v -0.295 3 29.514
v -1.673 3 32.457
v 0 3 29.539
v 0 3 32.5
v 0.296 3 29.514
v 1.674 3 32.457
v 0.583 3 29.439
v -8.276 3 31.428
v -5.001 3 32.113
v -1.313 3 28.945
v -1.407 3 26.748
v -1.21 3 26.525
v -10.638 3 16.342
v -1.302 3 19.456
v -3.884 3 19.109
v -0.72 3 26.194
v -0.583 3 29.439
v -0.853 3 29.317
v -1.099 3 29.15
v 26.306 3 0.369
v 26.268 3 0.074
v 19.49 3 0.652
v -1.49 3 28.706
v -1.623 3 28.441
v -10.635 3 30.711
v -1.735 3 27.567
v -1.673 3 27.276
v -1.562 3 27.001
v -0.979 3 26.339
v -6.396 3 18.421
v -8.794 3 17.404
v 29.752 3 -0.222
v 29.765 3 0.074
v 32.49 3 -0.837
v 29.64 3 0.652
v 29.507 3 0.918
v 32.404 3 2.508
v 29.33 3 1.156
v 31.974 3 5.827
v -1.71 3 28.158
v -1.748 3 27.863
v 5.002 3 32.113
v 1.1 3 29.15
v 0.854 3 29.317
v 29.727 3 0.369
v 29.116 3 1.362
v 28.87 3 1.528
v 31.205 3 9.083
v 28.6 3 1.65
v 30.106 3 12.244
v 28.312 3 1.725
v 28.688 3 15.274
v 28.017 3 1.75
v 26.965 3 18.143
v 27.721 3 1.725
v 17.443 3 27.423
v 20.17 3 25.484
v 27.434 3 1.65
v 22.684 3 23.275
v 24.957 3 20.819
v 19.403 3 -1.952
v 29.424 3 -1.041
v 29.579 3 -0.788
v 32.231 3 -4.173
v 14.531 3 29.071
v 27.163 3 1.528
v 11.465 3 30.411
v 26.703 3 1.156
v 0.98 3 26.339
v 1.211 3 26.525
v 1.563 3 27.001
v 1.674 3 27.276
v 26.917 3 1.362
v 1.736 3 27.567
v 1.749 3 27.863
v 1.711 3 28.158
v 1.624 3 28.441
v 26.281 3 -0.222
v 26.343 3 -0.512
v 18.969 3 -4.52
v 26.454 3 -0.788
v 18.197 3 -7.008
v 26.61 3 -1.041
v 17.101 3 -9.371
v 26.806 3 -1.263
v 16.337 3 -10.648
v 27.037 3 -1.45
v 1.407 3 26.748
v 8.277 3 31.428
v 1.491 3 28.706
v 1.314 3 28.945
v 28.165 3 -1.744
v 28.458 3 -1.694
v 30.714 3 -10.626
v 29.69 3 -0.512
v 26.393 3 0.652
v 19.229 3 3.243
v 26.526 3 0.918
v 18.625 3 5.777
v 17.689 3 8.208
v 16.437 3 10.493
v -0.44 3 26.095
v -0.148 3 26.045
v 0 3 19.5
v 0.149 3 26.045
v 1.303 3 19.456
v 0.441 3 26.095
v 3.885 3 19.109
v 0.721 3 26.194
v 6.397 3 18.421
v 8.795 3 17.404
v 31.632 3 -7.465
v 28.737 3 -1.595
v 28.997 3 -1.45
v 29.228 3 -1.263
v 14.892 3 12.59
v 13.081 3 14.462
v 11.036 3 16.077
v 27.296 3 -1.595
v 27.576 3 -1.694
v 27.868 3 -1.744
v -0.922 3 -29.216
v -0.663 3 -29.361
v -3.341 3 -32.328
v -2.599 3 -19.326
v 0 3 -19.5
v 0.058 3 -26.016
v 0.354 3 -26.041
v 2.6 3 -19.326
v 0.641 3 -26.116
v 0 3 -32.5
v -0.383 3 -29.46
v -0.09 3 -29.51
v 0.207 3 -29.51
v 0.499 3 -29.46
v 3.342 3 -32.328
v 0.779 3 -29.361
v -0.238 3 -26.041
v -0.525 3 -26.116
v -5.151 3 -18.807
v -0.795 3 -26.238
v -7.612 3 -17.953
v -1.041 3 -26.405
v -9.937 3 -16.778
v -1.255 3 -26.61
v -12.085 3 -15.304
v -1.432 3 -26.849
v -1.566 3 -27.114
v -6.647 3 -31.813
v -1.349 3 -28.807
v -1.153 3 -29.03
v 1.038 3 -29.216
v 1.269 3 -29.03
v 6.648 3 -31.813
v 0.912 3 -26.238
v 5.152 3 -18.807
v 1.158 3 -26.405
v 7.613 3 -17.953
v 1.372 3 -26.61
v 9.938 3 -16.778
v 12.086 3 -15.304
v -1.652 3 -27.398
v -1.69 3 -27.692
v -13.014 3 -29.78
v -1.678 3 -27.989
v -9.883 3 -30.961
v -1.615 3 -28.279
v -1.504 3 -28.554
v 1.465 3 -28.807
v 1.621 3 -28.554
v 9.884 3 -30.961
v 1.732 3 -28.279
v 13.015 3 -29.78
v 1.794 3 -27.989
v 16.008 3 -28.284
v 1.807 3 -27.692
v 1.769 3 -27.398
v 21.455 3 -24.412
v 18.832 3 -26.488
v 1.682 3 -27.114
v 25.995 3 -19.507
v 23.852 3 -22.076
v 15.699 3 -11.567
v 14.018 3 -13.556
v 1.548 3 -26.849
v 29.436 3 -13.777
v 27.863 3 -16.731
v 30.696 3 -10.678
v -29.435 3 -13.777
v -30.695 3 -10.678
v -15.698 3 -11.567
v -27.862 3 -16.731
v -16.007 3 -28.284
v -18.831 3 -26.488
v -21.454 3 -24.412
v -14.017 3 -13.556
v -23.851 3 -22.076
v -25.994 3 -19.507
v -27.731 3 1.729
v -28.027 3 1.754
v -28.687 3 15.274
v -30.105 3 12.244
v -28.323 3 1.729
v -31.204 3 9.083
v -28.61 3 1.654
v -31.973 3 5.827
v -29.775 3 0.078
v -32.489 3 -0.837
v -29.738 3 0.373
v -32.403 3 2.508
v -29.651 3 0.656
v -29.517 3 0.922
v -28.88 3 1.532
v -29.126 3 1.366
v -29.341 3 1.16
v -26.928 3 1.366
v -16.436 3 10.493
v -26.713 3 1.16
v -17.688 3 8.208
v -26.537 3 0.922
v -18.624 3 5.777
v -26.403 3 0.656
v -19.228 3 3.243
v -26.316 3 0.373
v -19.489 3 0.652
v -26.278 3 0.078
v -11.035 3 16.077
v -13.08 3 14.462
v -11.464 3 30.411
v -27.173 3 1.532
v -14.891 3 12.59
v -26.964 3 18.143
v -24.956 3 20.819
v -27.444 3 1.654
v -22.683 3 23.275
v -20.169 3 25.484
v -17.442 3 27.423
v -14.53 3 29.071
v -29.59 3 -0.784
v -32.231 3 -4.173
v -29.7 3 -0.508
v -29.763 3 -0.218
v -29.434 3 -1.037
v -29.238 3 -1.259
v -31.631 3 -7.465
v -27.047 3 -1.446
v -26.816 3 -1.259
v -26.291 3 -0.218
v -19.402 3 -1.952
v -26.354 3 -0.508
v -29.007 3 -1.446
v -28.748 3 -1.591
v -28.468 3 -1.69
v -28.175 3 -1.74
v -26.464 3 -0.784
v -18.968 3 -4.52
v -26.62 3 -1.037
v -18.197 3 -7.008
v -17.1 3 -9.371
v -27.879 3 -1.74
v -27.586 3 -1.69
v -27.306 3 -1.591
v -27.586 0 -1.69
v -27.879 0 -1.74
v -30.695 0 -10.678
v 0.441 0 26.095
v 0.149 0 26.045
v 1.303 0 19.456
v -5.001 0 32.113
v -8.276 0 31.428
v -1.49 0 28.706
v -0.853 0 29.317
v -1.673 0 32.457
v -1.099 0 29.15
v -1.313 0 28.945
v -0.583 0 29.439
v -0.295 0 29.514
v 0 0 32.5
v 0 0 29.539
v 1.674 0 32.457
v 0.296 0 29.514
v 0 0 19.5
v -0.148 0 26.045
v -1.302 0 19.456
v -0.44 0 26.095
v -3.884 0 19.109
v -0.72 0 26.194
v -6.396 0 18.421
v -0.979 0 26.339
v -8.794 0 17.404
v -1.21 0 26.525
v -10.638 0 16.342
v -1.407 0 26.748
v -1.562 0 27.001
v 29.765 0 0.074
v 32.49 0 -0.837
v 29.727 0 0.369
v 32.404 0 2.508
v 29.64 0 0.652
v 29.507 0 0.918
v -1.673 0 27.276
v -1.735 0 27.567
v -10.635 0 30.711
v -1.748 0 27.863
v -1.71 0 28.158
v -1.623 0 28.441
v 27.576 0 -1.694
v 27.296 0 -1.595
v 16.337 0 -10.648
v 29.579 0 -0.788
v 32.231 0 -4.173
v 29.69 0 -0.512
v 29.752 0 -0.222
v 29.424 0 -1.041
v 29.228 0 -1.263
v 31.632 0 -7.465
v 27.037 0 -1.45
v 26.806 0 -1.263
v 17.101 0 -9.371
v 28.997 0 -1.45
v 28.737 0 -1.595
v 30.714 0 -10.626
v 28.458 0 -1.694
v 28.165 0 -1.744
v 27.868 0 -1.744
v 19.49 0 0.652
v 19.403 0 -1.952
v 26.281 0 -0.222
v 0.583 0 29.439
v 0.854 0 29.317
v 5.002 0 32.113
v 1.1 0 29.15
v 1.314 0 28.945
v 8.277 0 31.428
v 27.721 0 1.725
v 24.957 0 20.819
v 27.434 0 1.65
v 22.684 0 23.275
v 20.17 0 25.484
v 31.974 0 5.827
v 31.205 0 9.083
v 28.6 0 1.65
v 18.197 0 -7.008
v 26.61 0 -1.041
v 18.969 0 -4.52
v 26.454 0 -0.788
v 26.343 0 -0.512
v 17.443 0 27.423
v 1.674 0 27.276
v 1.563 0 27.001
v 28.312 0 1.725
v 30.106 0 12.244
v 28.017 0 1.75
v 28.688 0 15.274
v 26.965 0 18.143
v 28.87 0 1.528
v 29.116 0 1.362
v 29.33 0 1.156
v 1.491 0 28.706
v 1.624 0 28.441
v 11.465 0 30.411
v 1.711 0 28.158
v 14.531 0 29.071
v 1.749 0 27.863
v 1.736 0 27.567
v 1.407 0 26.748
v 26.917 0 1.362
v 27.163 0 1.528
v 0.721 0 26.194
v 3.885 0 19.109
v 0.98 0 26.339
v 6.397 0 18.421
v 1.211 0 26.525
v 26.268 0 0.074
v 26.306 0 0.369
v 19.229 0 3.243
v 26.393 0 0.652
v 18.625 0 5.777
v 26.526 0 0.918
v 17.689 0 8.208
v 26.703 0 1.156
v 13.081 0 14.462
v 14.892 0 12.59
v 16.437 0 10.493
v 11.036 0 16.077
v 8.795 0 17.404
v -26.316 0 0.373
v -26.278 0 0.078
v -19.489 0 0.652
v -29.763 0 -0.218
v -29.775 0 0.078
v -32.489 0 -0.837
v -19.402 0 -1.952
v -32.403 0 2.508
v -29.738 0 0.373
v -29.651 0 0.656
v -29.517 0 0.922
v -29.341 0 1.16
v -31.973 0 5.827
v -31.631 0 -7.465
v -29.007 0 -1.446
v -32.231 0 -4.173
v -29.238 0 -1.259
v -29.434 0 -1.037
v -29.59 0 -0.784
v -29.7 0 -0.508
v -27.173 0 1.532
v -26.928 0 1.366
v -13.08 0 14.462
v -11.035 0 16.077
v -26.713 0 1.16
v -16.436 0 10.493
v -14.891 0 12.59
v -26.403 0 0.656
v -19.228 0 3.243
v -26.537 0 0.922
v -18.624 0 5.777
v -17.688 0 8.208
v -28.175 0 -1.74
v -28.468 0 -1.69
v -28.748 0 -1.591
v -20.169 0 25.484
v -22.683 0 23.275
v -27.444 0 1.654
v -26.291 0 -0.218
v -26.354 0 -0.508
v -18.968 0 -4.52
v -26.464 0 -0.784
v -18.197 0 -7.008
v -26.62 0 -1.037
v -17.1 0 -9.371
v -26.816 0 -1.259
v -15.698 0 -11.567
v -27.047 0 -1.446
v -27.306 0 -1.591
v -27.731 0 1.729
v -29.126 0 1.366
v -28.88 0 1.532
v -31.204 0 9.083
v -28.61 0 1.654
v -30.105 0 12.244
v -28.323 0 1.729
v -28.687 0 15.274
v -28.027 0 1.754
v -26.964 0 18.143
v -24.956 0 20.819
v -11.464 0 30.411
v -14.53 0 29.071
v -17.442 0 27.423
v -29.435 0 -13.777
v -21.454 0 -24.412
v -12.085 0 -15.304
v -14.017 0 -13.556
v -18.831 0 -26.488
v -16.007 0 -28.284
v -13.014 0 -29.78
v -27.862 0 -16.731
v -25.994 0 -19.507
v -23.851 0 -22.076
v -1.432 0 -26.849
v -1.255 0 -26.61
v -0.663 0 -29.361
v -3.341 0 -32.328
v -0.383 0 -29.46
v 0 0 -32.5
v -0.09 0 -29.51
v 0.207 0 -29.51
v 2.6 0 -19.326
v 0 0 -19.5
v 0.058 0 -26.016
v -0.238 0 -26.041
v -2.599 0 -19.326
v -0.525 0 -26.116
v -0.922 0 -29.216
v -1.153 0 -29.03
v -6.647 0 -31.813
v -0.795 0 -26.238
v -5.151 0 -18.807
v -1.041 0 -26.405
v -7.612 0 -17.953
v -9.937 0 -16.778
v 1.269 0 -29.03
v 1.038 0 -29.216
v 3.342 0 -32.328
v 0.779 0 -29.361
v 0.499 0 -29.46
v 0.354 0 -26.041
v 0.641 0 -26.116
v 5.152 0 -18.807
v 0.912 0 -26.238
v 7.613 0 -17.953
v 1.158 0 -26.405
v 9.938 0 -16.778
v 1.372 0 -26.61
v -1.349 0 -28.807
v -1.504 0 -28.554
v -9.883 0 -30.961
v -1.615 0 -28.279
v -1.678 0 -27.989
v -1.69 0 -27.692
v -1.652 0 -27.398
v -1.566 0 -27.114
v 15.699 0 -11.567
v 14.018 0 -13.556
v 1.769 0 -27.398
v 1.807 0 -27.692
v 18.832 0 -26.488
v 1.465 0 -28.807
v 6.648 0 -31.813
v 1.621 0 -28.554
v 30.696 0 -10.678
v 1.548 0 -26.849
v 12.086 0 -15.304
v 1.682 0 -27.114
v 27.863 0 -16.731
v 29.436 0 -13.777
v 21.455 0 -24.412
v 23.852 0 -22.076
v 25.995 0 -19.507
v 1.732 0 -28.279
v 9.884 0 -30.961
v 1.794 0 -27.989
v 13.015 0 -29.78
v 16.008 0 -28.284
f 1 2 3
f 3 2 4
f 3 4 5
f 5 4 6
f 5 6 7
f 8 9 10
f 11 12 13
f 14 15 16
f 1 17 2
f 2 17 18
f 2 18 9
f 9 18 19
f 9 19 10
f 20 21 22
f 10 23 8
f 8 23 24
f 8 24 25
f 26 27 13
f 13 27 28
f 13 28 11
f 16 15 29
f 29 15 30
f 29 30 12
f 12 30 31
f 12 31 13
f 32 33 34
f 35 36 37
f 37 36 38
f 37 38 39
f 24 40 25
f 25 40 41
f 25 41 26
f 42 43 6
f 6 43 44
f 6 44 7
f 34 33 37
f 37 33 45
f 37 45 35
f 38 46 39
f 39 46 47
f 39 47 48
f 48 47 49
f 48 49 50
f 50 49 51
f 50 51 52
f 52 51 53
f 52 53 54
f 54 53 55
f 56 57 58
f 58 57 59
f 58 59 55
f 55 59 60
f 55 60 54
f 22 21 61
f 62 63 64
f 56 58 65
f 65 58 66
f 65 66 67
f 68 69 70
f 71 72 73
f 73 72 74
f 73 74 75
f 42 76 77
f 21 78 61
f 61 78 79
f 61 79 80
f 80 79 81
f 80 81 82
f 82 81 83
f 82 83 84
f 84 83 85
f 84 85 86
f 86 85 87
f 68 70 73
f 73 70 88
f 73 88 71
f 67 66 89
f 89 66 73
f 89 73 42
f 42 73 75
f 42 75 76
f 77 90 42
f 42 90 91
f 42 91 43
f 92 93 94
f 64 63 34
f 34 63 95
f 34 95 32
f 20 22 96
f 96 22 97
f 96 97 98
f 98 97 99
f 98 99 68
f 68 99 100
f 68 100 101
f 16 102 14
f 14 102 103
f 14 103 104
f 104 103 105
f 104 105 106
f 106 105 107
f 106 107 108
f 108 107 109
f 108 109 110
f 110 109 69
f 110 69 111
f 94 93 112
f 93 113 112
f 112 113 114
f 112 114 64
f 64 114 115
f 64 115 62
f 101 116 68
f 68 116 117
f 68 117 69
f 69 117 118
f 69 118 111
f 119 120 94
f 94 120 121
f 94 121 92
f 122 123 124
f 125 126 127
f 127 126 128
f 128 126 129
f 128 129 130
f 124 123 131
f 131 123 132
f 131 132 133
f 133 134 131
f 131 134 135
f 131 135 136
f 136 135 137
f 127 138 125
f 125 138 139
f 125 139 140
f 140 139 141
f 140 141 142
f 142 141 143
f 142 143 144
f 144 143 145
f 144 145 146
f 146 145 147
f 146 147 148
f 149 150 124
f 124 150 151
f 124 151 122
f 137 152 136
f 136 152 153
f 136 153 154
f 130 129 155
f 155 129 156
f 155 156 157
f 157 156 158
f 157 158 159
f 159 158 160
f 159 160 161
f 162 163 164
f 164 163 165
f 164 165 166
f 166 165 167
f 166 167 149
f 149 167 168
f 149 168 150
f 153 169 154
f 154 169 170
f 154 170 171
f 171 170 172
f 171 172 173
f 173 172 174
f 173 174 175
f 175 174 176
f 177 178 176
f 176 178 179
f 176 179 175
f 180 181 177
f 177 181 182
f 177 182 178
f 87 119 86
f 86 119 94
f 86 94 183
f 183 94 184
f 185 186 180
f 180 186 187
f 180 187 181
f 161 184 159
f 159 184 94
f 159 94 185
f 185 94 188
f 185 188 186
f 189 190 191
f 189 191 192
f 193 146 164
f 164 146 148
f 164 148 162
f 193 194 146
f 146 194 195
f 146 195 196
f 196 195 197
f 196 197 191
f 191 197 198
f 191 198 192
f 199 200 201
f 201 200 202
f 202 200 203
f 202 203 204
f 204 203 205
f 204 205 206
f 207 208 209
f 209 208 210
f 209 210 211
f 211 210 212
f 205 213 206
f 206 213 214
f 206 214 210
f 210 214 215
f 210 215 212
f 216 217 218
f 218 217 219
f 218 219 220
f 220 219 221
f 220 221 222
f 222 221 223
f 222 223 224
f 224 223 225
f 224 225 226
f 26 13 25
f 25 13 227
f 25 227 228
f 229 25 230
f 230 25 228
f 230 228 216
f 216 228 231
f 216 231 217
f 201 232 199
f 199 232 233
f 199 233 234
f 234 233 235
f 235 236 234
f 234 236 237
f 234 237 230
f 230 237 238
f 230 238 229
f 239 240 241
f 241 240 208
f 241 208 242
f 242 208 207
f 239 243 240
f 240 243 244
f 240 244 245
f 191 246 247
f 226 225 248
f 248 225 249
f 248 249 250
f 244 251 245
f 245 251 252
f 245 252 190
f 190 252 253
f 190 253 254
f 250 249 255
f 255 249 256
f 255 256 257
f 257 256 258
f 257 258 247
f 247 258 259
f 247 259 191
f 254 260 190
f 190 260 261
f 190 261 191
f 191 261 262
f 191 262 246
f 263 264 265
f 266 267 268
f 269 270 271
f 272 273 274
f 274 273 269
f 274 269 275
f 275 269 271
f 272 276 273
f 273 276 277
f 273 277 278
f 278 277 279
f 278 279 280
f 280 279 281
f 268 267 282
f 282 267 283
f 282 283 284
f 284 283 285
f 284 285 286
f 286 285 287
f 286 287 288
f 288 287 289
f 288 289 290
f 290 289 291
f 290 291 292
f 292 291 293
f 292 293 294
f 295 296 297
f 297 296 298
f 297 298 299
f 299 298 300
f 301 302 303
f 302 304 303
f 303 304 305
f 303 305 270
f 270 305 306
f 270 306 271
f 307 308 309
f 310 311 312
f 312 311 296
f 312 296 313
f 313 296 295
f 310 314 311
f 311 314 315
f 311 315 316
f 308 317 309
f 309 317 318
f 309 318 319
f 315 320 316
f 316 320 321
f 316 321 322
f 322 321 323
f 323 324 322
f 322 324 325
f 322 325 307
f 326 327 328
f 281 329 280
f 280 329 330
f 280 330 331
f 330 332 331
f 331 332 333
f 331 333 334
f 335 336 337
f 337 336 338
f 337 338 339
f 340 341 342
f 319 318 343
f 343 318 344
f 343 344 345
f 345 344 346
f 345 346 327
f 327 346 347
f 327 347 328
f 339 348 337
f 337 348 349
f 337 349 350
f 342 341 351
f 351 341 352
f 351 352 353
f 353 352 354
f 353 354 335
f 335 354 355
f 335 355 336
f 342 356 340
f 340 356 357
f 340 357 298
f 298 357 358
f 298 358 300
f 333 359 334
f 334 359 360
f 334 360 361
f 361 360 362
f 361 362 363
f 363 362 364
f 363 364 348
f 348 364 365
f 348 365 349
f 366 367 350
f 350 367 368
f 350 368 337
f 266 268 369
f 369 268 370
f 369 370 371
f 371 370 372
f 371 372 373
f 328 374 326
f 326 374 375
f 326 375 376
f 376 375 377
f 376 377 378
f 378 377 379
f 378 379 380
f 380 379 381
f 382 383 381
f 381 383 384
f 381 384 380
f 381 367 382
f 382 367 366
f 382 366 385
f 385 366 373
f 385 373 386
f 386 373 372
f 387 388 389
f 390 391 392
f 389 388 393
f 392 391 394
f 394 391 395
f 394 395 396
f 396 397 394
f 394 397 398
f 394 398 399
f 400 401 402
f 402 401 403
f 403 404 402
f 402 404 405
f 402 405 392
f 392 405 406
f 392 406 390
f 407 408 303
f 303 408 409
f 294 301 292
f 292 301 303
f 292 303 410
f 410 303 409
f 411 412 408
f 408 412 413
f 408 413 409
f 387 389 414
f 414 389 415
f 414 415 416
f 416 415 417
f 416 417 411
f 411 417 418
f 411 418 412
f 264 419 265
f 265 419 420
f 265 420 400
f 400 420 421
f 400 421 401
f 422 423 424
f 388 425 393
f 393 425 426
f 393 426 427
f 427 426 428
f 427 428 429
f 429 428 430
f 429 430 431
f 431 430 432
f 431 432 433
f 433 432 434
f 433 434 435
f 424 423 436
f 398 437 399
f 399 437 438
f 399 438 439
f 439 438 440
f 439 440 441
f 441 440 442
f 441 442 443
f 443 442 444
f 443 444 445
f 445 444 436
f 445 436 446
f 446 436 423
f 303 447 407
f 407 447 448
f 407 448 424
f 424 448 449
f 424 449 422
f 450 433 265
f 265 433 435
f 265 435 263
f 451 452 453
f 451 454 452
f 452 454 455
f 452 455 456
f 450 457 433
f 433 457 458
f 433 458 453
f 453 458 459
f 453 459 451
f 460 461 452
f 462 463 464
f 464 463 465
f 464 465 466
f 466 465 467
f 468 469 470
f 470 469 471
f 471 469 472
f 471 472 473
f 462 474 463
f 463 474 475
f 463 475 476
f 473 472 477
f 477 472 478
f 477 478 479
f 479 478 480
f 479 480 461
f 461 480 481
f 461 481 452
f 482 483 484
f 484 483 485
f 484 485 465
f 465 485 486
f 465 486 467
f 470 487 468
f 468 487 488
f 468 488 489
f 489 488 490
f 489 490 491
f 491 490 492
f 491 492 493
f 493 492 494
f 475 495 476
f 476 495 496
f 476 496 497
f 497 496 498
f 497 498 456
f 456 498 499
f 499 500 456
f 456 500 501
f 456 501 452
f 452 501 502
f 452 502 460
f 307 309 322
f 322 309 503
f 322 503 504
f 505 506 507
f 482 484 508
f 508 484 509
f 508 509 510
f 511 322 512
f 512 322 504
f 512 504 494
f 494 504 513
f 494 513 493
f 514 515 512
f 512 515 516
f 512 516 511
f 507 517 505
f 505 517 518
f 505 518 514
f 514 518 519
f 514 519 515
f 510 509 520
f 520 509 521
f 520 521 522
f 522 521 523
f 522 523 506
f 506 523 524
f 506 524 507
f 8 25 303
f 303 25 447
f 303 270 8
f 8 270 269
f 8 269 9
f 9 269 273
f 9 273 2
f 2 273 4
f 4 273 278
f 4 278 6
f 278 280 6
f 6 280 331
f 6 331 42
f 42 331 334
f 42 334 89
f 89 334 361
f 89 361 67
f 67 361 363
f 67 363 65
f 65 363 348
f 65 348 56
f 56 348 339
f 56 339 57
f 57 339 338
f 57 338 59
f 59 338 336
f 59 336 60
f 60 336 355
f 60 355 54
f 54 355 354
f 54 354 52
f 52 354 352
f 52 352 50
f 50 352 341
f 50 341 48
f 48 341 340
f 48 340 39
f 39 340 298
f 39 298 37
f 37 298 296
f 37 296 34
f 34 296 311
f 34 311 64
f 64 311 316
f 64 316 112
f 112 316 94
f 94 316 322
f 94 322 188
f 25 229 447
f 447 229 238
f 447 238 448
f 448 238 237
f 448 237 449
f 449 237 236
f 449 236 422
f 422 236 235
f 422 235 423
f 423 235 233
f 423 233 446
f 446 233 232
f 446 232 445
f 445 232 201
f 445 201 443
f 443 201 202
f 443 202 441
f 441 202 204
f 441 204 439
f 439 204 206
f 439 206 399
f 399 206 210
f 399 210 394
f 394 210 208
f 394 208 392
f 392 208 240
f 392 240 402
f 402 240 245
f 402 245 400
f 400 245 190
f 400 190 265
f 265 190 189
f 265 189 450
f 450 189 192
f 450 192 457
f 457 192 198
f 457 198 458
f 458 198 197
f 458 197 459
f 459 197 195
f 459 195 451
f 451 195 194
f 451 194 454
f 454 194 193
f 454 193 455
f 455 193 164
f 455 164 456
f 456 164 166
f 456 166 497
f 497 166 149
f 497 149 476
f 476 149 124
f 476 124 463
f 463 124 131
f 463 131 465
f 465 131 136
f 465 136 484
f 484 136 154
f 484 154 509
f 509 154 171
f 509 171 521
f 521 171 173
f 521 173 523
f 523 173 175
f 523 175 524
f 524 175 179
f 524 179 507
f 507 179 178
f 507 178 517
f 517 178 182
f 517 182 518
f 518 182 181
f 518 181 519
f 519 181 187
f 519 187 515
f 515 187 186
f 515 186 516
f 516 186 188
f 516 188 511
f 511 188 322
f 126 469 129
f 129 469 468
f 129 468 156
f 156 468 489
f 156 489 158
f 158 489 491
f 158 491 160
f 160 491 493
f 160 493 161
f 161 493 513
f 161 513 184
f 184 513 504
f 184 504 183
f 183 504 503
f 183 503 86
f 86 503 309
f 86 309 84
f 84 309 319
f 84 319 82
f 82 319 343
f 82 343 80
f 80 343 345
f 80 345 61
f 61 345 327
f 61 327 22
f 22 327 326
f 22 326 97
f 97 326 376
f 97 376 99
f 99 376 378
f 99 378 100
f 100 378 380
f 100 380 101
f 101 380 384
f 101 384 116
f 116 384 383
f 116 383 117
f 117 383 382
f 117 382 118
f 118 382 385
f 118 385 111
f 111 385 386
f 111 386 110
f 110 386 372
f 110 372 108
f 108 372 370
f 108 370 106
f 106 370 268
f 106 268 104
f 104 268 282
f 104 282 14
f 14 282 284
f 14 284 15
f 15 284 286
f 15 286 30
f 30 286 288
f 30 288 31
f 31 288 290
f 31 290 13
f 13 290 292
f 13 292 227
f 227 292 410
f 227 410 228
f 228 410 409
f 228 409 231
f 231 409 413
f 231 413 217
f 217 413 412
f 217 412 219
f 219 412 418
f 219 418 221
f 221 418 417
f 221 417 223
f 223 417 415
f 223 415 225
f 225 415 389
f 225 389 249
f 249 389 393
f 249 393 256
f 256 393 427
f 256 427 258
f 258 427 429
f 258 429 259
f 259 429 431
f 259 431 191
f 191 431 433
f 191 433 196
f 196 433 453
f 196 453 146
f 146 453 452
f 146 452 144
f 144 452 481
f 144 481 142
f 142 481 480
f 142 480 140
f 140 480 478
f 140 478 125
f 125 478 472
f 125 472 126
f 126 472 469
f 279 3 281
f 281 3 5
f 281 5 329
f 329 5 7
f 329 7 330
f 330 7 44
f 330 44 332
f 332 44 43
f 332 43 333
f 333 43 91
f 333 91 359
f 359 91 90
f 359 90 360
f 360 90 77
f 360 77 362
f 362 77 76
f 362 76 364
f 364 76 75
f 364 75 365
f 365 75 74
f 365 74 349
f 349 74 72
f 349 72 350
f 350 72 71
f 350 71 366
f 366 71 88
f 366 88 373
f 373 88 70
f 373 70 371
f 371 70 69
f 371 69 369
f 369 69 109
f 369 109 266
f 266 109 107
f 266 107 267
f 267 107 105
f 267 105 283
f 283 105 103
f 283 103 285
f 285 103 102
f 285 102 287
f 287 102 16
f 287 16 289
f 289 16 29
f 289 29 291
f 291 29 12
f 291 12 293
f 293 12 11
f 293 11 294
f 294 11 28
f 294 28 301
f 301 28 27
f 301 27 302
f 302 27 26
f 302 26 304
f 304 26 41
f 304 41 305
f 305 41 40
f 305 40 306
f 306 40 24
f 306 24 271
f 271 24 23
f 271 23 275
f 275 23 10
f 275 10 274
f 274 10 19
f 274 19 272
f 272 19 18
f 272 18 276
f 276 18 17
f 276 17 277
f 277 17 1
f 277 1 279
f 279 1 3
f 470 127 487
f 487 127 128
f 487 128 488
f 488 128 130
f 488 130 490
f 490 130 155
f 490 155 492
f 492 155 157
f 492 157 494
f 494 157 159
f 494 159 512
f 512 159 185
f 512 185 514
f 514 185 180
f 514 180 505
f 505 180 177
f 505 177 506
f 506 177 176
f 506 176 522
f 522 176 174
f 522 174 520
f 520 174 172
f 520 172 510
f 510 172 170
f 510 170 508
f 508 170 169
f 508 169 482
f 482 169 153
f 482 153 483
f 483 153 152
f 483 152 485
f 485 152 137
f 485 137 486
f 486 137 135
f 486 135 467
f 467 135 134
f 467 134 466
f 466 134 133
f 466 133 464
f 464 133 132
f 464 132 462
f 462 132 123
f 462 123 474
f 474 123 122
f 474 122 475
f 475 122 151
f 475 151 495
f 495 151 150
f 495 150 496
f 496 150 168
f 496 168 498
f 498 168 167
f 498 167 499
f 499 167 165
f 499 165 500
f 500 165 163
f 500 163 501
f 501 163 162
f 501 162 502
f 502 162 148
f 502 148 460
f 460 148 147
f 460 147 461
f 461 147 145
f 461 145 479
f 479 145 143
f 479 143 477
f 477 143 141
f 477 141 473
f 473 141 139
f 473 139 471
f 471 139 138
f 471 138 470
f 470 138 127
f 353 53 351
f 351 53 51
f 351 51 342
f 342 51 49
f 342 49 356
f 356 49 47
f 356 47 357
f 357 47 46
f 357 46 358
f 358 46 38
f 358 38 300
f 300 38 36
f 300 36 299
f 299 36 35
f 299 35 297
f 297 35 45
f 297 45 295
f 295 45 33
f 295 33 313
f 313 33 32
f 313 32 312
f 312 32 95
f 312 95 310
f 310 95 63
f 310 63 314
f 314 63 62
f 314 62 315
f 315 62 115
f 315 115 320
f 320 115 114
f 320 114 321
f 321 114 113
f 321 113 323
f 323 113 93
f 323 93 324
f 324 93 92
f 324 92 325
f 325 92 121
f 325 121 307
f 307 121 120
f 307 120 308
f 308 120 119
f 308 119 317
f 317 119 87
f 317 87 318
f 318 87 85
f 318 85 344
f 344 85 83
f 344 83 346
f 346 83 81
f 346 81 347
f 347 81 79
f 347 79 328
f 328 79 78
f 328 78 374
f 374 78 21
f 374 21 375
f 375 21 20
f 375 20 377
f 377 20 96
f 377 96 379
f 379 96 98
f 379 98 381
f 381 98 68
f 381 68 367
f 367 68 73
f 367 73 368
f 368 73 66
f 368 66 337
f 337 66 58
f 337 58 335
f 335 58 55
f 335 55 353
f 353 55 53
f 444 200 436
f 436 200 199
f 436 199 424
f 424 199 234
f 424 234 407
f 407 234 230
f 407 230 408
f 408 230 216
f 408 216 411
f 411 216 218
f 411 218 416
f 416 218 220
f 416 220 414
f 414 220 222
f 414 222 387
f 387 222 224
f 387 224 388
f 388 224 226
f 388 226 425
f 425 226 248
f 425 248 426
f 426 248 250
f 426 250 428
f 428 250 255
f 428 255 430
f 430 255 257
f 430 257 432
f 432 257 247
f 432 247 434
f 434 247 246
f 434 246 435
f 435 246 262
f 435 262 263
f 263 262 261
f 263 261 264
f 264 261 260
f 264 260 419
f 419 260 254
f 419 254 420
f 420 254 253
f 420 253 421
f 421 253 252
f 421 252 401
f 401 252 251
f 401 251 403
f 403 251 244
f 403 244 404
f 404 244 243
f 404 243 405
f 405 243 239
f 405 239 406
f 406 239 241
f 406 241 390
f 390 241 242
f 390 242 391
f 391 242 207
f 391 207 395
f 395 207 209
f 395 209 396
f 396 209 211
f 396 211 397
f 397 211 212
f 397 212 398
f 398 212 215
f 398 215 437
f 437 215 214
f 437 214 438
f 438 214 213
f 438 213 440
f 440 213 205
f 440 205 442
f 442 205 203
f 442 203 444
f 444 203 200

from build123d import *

# Parameters (mm, degrees)
SKETCH1_R                = 32.5
SKETCH1_R_2              = 19.5
BOSS_EXTRUDE2_DEPTH      = 3
SKETCH2_R                = 1.75
CUT_EXTRUDE2_DEPTH       = 1
CUT_EXTRUDE2_DEPTH_BACK  = 4
SKETCH5_R                = 1.75
CUT_EXTRUDE4_DEPTH       = 1
CUT_EXTRUDE4_DEPTH_BACK  = 4
SKETCH13_R               = 1.75
CUT_EXTRUDE12_DEPTH      = 1
CUT_EXTRUDE12_DEPTH_BACK = 4


with BuildPart() as part:
    # Sketch1 → Boss-Extrude2 (new body)
    with BuildSketch(Plane(origin=(0, 0, 0), x_dir=(1, 0, 0), z_dir=(0, 1, 0))):
        Circle(SKETCH1_R)
        Circle(SKETCH1_R_2, mode=Mode.SUBTRACT)
    extrude(amount=BOSS_EXTRUDE2_DEPTH)

    # Sketch2 → Cut-Extrude2 (cut, two sides)
    with BuildSketch(Plane(origin=(0, 3, 0), x_dir=(1, 0, 0), z_dir=(0, 1, 0))) as cut_extrude2_sk:
        with Locations((0, -27.788884535)):
            Circle(SKETCH2_R)
    extrude(amount=CUT_EXTRUDE2_DEPTH, mode=Mode.SUBTRACT)
    extrude(cut_extrude2_sk.sketch, amount=-CUT_EXTRUDE2_DEPTH_BACK, mode=Mode.SUBTRACT)

    # Sketch5 → Cut-Extrude4 (cut, two sides)
    with BuildSketch(Plane(origin=(0, 3, 0), x_dir=(1, 0, 0), z_dir=(0, 1, 0))) as cut_extrude4_sk:
        with Locations((0.057759675, 27.766269398)):
            Circle(SKETCH5_R)
    extrude(amount=CUT_EXTRUDE4_DEPTH, mode=Mode.SUBTRACT)
    extrude(cut_extrude4_sk.sketch, amount=-CUT_EXTRUDE4_DEPTH_BACK, mode=Mode.SUBTRACT)

    # Sketch13 → Cut-Extrude12 (cut, two sides)
    with BuildSketch(Plane(origin=(0, 3, 0), x_dir=(1, 0, 0), z_dir=(0, 1, 0))) as cut_extrude12_sk:
        with Locations((-28.027387252, -0.003979104)):
            Circle(SKETCH13_R)
        with Locations((28.01619309, 0)):
            Circle(SKETCH13_R)
    extrude(amount=CUT_EXTRUDE12_DEPTH, mode=Mode.SUBTRACT)
    extrude(cut_extrude12_sk.sketch, amount=-CUT_EXTRUDE12_DEPTH_BACK, mode=Mode.SUBTRACT)


solid = part.part
